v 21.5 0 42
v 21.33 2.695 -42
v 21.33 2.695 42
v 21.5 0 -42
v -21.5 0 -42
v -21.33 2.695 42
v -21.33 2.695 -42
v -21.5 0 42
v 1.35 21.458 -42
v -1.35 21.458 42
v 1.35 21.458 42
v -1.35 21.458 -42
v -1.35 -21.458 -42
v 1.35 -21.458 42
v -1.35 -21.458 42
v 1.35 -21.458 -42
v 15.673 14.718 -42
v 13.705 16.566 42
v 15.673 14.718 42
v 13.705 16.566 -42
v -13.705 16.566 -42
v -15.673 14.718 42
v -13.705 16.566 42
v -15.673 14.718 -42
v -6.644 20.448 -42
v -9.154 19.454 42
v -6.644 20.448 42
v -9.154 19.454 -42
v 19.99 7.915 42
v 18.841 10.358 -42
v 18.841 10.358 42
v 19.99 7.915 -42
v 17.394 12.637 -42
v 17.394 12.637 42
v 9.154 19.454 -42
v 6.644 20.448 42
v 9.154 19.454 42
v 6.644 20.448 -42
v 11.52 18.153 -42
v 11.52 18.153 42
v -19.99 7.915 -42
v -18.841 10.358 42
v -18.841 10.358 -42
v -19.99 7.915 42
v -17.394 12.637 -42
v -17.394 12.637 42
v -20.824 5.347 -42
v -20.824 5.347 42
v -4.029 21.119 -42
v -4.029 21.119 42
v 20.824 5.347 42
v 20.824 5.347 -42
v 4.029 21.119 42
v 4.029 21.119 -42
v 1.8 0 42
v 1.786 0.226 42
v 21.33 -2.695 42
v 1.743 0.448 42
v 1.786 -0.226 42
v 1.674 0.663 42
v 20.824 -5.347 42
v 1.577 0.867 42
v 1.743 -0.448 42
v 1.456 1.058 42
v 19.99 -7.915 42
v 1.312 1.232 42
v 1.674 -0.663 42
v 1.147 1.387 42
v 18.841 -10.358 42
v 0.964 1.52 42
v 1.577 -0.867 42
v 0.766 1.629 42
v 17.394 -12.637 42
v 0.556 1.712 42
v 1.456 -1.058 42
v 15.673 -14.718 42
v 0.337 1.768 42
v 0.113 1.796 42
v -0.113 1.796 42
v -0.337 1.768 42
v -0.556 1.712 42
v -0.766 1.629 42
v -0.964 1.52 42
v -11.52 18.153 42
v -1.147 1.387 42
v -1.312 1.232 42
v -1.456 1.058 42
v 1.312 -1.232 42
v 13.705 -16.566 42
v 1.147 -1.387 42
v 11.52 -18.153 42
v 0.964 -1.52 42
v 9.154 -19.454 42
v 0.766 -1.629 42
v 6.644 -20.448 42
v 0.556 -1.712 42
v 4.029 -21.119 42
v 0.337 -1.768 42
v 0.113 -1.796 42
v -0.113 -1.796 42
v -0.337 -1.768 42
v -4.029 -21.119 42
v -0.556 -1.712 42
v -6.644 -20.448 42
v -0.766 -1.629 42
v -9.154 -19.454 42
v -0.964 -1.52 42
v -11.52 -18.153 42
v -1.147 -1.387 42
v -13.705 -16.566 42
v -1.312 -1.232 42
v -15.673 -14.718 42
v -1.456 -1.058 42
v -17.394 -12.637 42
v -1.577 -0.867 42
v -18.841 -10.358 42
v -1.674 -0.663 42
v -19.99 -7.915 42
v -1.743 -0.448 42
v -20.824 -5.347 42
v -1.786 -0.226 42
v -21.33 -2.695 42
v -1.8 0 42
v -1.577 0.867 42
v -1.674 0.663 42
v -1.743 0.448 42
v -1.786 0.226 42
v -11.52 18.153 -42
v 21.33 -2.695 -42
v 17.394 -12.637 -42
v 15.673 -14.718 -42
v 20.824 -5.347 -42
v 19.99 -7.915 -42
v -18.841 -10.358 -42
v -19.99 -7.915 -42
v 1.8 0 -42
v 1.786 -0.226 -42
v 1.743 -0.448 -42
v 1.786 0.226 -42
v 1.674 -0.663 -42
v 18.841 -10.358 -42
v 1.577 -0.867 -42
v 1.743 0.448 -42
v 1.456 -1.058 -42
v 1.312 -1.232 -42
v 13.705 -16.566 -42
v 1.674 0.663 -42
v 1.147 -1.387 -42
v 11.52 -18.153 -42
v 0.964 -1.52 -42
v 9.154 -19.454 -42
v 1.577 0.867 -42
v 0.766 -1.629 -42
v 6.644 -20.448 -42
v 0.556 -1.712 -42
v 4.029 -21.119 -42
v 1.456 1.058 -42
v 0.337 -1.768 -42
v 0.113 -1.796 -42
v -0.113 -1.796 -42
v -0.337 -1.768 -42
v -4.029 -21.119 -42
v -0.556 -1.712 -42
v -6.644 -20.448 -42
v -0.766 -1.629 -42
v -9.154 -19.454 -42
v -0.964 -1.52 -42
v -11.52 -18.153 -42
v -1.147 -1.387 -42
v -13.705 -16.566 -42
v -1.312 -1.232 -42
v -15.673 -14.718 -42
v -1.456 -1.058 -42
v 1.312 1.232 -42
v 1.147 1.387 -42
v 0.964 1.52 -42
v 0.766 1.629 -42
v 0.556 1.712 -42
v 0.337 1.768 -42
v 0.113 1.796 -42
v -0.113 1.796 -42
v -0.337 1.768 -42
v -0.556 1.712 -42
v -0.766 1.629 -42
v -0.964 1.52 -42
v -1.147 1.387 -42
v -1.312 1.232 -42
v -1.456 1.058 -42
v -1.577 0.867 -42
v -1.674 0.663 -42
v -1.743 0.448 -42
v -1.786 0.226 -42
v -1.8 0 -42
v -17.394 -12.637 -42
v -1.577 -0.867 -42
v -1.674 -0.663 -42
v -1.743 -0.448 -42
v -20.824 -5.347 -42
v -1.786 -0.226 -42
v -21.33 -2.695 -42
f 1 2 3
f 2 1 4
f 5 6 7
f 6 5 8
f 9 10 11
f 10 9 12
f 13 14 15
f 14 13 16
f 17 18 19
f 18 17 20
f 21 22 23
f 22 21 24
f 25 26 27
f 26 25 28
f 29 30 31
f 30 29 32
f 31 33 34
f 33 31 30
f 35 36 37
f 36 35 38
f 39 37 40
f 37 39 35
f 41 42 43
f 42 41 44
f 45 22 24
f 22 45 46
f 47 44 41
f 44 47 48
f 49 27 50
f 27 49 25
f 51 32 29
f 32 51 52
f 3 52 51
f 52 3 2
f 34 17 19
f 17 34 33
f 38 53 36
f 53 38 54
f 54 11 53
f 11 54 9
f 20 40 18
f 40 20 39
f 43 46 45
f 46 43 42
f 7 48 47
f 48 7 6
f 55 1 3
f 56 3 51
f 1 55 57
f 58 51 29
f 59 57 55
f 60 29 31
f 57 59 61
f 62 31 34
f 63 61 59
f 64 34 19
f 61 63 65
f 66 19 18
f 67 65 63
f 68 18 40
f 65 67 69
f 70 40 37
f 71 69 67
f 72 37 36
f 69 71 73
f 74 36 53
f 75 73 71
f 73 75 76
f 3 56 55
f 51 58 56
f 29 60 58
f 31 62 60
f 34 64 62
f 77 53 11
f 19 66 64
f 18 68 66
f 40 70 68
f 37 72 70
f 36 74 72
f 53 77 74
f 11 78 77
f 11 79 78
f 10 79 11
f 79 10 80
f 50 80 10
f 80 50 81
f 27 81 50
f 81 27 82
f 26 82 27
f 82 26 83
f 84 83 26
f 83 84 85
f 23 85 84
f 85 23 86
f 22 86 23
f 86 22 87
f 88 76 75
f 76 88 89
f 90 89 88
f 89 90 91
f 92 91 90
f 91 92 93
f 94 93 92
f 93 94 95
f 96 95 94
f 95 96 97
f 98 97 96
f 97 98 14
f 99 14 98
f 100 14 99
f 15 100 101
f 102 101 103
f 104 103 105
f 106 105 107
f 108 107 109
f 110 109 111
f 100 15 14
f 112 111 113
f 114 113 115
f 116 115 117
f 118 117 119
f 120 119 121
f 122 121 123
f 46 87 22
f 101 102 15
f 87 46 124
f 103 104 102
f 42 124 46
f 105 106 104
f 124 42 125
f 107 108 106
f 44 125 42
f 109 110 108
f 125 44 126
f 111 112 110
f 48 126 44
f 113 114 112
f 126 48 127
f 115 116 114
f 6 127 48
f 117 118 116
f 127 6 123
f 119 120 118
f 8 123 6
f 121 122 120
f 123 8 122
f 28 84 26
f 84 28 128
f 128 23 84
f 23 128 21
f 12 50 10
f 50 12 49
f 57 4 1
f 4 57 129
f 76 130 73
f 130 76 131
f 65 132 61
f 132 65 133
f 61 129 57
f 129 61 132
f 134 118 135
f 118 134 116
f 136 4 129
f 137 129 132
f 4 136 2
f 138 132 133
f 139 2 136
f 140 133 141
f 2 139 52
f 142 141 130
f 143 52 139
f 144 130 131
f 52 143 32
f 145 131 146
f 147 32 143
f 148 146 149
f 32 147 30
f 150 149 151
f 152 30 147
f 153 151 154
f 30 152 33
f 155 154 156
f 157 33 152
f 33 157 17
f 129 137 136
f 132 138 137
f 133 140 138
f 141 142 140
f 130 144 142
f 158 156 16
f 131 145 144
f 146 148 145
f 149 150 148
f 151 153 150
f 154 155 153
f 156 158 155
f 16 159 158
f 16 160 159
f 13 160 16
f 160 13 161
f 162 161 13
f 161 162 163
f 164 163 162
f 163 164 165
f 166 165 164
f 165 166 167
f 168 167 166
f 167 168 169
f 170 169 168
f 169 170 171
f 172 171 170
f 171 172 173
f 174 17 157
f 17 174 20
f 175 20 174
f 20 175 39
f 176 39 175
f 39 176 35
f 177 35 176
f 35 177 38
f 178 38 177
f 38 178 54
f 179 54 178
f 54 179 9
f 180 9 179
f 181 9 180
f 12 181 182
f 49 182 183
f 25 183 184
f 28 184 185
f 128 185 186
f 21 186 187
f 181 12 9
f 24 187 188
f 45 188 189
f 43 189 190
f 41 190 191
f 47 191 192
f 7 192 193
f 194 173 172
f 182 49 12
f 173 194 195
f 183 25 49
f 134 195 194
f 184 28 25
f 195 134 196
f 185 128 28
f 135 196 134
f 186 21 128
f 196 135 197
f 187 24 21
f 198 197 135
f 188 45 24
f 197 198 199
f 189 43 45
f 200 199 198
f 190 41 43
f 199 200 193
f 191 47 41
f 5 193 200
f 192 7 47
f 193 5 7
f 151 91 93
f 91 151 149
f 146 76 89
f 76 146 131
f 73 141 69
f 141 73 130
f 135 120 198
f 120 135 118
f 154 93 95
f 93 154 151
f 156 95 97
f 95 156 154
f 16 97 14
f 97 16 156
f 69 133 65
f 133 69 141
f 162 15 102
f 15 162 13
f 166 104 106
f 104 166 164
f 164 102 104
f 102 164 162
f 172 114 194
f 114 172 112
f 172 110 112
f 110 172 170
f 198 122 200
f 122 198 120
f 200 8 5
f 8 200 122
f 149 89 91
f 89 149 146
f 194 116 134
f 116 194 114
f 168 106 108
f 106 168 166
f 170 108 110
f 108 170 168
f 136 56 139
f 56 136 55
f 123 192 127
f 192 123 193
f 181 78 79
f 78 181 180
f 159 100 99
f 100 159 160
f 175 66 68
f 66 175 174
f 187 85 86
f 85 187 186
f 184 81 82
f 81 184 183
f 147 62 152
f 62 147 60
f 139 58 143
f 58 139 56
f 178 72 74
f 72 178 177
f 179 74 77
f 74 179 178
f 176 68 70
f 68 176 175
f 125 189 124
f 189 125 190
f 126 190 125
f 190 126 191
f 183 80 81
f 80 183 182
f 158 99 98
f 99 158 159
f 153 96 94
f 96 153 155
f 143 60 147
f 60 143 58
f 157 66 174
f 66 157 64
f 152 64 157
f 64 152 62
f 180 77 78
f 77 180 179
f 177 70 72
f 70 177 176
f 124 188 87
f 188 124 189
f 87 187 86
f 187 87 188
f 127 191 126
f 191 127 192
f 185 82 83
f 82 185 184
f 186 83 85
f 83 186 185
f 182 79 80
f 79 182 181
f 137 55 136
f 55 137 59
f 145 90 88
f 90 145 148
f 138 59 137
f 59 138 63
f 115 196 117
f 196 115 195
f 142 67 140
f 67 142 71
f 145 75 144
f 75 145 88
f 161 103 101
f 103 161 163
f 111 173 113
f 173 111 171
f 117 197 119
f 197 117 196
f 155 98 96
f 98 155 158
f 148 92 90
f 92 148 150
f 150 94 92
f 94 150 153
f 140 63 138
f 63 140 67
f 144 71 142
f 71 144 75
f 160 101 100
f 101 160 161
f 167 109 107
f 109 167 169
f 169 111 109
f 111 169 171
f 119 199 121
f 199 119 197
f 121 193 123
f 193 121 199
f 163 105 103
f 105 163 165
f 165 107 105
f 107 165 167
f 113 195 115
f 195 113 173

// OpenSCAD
$fn = 50;


difference() {
	union() {
		translate(v = [0, 0, -42.0000000000]) {
			cylinder(h = 84, r = 21.5000000000);
		}
	}
	union() {
		translate(v = [0, 0, -100.0000000000]) {
			cylinder(h = 200, r = 1.8000000000);
		}
	}
}
